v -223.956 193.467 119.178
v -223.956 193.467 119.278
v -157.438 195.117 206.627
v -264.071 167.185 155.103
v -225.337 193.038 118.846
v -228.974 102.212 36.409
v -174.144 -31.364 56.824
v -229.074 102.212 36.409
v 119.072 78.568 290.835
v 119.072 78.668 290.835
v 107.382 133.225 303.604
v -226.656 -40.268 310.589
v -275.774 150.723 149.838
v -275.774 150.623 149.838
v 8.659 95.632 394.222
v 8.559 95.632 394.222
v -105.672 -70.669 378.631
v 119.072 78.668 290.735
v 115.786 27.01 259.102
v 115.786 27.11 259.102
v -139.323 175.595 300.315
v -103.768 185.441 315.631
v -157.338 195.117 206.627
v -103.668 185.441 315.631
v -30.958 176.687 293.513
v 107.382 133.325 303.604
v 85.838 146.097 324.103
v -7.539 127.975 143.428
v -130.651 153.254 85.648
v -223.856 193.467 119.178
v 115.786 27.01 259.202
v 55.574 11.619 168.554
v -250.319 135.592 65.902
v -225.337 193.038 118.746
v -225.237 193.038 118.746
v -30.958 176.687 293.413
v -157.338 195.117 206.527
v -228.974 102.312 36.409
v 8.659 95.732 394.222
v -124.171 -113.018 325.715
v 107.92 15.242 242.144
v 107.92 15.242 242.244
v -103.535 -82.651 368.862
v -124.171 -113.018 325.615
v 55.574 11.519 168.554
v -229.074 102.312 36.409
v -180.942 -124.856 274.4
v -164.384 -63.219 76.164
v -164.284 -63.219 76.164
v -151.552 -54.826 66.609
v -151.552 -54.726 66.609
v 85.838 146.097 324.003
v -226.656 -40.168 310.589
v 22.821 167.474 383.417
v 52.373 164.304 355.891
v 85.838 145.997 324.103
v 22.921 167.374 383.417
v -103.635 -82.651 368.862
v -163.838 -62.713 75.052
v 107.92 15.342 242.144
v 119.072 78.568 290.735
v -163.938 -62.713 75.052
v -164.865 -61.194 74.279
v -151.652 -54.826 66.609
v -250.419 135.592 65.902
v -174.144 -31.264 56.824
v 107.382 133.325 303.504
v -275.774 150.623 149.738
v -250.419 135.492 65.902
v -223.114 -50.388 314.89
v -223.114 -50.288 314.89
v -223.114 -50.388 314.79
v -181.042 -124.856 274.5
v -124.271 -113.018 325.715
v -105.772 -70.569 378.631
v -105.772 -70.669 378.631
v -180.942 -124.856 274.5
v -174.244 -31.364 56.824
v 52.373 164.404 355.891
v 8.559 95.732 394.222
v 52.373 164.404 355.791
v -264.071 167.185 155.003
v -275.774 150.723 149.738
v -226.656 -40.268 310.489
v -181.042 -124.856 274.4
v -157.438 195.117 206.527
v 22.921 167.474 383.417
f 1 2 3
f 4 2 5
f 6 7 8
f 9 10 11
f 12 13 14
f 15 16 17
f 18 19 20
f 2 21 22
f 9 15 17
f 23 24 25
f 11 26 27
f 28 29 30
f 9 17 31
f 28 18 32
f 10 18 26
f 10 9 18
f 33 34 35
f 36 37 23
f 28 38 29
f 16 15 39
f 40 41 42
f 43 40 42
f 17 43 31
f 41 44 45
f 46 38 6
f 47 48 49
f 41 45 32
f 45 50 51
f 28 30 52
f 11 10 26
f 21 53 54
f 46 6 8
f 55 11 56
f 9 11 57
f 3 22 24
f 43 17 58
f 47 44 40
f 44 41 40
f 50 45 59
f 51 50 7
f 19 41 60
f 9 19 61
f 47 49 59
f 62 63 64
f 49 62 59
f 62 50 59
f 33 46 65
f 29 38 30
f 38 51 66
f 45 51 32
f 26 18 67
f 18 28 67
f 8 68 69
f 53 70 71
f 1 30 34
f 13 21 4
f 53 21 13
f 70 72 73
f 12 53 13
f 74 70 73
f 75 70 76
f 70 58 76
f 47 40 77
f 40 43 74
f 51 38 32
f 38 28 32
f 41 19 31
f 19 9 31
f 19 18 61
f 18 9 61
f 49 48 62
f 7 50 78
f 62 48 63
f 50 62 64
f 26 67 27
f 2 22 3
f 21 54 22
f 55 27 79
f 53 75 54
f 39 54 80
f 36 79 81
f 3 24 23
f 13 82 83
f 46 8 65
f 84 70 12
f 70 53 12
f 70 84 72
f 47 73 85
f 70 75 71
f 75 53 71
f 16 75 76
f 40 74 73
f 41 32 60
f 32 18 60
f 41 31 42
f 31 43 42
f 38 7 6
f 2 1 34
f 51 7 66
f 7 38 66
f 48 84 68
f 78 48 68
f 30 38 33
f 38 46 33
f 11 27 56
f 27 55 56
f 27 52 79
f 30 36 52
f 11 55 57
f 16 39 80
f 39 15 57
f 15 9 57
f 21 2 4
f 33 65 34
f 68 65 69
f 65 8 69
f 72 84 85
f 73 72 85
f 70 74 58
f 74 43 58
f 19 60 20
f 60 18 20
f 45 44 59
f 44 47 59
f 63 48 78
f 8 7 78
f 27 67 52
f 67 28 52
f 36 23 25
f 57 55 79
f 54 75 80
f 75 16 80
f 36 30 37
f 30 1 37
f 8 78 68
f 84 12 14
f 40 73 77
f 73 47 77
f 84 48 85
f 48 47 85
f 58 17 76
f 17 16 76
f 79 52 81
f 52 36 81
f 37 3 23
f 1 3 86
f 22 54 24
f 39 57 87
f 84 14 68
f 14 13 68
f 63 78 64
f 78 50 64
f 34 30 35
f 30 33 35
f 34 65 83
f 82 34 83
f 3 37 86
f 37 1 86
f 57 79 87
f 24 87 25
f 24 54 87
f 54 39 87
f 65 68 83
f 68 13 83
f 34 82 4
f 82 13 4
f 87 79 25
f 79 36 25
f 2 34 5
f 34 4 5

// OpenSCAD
hull(){ translate([118.972455348,78.5678932645,290.73488272])cube(0.1,0.1,0.1);
translate([107.281701045,133.225405077,303.504119892])cube(0.1,0.1,0.1);
translate([115.685871056,27.0096021948,259.101508916])cube(0.1,0.1,0.1);
translate([107.819574663,15.2423965241,242.143837183])cube(0.1,0.1,0.1);
translate([-7.63928317956,127.875266146,143.427963094])cube(0.1,0.1,0.1);
translate([55.474222747,11.5190869736,168.553719008])cube(0.1,0.1,0.1);
translate([-124.271070615,-113.018223235,325.615034169])cube(0.1,0.1,0.1);
translate([-103.635477583,-82.6510721248,368.762183236])cube(0.1,0.1,0.1);
translate([85.737704918,145.99726776,324.00273224])cube(0.1,0.1,0.1);
translate([8.5593220339,95.6317411402,394.121725732])cube(0.1,0.1,0.1);
translate([-139.323432343,175.495049505,300.214521452])cube(0.1,0.1,0.1);
translate([-105.772413793,-70.6689655172,378.531034483])cube(0.1,0.1,0.1);
translate([-264.071114401,167.085093411,155.002612899])cube(0.1,0.1,0.1);
translate([-130.751001335,153.154205607,85.6475300401])cube(0.1,0.1,0.1);
translate([-223.955568379,193.366993653,119.177726486])cube(0.1,0.1,0.1);
translate([-225.336985162,192.937872694,118.745666343])cube(0.1,0.1,0.1);
translate([-103.767772512,185.341232227,315.530805687])cube(0.1,0.1,0.1);
translate([-157.438245315,195.017035775,206.526831346])cube(0.1,0.1,0.1);
translate([-31.0576923077,176.586538462,293.413461538])cube(0.1,0.1,0.1);
translate([52.272834832,164.303715097,355.790937056])cube(0.1,0.1,0.1);
translate([22.8212881766,167.373752646,383.317205927])cube(0.1,0.1,0.1);
translate([-181.042047532,-124.855575868,274.400365631])cube(0.1,0.1,0.1);
translate([-164.383561644,-63.2191780822,76.1643835616])cube(0.1,0.1,0.1);
translate([-226.65615142,-40.2681388013,310.488958991])cube(0.1,0.1,0.1);
translate([-223.114323259,-50.3876478318,314.789750329])cube(0.1,0.1,0.1);
translate([-275.77445955,150.623467796,149.738132382])cube(0.1,0.1,0.1);
translate([-250.418994413,135.491980537,65.9015137863])cube(0.1,0.1,0.1);
translate([-229.073953306,102.212077736,36.4086344072])cube(0.1,0.1,0.1);
translate([-151.652173913,-54.8260869565,66.6086956522])cube(0.1,0.1,0.1);
translate([-163.937753721,-62.7131258457,75.051871899])cube(0.1,0.1,0.1);
translate([-174.243747519,-31.3636363636,56.8241365621])cube(0.1,0.1,0.1);
translate([-164.864864865,-61.1936936937,74.2792792793])cube(0.1,0.1,0.1); }
